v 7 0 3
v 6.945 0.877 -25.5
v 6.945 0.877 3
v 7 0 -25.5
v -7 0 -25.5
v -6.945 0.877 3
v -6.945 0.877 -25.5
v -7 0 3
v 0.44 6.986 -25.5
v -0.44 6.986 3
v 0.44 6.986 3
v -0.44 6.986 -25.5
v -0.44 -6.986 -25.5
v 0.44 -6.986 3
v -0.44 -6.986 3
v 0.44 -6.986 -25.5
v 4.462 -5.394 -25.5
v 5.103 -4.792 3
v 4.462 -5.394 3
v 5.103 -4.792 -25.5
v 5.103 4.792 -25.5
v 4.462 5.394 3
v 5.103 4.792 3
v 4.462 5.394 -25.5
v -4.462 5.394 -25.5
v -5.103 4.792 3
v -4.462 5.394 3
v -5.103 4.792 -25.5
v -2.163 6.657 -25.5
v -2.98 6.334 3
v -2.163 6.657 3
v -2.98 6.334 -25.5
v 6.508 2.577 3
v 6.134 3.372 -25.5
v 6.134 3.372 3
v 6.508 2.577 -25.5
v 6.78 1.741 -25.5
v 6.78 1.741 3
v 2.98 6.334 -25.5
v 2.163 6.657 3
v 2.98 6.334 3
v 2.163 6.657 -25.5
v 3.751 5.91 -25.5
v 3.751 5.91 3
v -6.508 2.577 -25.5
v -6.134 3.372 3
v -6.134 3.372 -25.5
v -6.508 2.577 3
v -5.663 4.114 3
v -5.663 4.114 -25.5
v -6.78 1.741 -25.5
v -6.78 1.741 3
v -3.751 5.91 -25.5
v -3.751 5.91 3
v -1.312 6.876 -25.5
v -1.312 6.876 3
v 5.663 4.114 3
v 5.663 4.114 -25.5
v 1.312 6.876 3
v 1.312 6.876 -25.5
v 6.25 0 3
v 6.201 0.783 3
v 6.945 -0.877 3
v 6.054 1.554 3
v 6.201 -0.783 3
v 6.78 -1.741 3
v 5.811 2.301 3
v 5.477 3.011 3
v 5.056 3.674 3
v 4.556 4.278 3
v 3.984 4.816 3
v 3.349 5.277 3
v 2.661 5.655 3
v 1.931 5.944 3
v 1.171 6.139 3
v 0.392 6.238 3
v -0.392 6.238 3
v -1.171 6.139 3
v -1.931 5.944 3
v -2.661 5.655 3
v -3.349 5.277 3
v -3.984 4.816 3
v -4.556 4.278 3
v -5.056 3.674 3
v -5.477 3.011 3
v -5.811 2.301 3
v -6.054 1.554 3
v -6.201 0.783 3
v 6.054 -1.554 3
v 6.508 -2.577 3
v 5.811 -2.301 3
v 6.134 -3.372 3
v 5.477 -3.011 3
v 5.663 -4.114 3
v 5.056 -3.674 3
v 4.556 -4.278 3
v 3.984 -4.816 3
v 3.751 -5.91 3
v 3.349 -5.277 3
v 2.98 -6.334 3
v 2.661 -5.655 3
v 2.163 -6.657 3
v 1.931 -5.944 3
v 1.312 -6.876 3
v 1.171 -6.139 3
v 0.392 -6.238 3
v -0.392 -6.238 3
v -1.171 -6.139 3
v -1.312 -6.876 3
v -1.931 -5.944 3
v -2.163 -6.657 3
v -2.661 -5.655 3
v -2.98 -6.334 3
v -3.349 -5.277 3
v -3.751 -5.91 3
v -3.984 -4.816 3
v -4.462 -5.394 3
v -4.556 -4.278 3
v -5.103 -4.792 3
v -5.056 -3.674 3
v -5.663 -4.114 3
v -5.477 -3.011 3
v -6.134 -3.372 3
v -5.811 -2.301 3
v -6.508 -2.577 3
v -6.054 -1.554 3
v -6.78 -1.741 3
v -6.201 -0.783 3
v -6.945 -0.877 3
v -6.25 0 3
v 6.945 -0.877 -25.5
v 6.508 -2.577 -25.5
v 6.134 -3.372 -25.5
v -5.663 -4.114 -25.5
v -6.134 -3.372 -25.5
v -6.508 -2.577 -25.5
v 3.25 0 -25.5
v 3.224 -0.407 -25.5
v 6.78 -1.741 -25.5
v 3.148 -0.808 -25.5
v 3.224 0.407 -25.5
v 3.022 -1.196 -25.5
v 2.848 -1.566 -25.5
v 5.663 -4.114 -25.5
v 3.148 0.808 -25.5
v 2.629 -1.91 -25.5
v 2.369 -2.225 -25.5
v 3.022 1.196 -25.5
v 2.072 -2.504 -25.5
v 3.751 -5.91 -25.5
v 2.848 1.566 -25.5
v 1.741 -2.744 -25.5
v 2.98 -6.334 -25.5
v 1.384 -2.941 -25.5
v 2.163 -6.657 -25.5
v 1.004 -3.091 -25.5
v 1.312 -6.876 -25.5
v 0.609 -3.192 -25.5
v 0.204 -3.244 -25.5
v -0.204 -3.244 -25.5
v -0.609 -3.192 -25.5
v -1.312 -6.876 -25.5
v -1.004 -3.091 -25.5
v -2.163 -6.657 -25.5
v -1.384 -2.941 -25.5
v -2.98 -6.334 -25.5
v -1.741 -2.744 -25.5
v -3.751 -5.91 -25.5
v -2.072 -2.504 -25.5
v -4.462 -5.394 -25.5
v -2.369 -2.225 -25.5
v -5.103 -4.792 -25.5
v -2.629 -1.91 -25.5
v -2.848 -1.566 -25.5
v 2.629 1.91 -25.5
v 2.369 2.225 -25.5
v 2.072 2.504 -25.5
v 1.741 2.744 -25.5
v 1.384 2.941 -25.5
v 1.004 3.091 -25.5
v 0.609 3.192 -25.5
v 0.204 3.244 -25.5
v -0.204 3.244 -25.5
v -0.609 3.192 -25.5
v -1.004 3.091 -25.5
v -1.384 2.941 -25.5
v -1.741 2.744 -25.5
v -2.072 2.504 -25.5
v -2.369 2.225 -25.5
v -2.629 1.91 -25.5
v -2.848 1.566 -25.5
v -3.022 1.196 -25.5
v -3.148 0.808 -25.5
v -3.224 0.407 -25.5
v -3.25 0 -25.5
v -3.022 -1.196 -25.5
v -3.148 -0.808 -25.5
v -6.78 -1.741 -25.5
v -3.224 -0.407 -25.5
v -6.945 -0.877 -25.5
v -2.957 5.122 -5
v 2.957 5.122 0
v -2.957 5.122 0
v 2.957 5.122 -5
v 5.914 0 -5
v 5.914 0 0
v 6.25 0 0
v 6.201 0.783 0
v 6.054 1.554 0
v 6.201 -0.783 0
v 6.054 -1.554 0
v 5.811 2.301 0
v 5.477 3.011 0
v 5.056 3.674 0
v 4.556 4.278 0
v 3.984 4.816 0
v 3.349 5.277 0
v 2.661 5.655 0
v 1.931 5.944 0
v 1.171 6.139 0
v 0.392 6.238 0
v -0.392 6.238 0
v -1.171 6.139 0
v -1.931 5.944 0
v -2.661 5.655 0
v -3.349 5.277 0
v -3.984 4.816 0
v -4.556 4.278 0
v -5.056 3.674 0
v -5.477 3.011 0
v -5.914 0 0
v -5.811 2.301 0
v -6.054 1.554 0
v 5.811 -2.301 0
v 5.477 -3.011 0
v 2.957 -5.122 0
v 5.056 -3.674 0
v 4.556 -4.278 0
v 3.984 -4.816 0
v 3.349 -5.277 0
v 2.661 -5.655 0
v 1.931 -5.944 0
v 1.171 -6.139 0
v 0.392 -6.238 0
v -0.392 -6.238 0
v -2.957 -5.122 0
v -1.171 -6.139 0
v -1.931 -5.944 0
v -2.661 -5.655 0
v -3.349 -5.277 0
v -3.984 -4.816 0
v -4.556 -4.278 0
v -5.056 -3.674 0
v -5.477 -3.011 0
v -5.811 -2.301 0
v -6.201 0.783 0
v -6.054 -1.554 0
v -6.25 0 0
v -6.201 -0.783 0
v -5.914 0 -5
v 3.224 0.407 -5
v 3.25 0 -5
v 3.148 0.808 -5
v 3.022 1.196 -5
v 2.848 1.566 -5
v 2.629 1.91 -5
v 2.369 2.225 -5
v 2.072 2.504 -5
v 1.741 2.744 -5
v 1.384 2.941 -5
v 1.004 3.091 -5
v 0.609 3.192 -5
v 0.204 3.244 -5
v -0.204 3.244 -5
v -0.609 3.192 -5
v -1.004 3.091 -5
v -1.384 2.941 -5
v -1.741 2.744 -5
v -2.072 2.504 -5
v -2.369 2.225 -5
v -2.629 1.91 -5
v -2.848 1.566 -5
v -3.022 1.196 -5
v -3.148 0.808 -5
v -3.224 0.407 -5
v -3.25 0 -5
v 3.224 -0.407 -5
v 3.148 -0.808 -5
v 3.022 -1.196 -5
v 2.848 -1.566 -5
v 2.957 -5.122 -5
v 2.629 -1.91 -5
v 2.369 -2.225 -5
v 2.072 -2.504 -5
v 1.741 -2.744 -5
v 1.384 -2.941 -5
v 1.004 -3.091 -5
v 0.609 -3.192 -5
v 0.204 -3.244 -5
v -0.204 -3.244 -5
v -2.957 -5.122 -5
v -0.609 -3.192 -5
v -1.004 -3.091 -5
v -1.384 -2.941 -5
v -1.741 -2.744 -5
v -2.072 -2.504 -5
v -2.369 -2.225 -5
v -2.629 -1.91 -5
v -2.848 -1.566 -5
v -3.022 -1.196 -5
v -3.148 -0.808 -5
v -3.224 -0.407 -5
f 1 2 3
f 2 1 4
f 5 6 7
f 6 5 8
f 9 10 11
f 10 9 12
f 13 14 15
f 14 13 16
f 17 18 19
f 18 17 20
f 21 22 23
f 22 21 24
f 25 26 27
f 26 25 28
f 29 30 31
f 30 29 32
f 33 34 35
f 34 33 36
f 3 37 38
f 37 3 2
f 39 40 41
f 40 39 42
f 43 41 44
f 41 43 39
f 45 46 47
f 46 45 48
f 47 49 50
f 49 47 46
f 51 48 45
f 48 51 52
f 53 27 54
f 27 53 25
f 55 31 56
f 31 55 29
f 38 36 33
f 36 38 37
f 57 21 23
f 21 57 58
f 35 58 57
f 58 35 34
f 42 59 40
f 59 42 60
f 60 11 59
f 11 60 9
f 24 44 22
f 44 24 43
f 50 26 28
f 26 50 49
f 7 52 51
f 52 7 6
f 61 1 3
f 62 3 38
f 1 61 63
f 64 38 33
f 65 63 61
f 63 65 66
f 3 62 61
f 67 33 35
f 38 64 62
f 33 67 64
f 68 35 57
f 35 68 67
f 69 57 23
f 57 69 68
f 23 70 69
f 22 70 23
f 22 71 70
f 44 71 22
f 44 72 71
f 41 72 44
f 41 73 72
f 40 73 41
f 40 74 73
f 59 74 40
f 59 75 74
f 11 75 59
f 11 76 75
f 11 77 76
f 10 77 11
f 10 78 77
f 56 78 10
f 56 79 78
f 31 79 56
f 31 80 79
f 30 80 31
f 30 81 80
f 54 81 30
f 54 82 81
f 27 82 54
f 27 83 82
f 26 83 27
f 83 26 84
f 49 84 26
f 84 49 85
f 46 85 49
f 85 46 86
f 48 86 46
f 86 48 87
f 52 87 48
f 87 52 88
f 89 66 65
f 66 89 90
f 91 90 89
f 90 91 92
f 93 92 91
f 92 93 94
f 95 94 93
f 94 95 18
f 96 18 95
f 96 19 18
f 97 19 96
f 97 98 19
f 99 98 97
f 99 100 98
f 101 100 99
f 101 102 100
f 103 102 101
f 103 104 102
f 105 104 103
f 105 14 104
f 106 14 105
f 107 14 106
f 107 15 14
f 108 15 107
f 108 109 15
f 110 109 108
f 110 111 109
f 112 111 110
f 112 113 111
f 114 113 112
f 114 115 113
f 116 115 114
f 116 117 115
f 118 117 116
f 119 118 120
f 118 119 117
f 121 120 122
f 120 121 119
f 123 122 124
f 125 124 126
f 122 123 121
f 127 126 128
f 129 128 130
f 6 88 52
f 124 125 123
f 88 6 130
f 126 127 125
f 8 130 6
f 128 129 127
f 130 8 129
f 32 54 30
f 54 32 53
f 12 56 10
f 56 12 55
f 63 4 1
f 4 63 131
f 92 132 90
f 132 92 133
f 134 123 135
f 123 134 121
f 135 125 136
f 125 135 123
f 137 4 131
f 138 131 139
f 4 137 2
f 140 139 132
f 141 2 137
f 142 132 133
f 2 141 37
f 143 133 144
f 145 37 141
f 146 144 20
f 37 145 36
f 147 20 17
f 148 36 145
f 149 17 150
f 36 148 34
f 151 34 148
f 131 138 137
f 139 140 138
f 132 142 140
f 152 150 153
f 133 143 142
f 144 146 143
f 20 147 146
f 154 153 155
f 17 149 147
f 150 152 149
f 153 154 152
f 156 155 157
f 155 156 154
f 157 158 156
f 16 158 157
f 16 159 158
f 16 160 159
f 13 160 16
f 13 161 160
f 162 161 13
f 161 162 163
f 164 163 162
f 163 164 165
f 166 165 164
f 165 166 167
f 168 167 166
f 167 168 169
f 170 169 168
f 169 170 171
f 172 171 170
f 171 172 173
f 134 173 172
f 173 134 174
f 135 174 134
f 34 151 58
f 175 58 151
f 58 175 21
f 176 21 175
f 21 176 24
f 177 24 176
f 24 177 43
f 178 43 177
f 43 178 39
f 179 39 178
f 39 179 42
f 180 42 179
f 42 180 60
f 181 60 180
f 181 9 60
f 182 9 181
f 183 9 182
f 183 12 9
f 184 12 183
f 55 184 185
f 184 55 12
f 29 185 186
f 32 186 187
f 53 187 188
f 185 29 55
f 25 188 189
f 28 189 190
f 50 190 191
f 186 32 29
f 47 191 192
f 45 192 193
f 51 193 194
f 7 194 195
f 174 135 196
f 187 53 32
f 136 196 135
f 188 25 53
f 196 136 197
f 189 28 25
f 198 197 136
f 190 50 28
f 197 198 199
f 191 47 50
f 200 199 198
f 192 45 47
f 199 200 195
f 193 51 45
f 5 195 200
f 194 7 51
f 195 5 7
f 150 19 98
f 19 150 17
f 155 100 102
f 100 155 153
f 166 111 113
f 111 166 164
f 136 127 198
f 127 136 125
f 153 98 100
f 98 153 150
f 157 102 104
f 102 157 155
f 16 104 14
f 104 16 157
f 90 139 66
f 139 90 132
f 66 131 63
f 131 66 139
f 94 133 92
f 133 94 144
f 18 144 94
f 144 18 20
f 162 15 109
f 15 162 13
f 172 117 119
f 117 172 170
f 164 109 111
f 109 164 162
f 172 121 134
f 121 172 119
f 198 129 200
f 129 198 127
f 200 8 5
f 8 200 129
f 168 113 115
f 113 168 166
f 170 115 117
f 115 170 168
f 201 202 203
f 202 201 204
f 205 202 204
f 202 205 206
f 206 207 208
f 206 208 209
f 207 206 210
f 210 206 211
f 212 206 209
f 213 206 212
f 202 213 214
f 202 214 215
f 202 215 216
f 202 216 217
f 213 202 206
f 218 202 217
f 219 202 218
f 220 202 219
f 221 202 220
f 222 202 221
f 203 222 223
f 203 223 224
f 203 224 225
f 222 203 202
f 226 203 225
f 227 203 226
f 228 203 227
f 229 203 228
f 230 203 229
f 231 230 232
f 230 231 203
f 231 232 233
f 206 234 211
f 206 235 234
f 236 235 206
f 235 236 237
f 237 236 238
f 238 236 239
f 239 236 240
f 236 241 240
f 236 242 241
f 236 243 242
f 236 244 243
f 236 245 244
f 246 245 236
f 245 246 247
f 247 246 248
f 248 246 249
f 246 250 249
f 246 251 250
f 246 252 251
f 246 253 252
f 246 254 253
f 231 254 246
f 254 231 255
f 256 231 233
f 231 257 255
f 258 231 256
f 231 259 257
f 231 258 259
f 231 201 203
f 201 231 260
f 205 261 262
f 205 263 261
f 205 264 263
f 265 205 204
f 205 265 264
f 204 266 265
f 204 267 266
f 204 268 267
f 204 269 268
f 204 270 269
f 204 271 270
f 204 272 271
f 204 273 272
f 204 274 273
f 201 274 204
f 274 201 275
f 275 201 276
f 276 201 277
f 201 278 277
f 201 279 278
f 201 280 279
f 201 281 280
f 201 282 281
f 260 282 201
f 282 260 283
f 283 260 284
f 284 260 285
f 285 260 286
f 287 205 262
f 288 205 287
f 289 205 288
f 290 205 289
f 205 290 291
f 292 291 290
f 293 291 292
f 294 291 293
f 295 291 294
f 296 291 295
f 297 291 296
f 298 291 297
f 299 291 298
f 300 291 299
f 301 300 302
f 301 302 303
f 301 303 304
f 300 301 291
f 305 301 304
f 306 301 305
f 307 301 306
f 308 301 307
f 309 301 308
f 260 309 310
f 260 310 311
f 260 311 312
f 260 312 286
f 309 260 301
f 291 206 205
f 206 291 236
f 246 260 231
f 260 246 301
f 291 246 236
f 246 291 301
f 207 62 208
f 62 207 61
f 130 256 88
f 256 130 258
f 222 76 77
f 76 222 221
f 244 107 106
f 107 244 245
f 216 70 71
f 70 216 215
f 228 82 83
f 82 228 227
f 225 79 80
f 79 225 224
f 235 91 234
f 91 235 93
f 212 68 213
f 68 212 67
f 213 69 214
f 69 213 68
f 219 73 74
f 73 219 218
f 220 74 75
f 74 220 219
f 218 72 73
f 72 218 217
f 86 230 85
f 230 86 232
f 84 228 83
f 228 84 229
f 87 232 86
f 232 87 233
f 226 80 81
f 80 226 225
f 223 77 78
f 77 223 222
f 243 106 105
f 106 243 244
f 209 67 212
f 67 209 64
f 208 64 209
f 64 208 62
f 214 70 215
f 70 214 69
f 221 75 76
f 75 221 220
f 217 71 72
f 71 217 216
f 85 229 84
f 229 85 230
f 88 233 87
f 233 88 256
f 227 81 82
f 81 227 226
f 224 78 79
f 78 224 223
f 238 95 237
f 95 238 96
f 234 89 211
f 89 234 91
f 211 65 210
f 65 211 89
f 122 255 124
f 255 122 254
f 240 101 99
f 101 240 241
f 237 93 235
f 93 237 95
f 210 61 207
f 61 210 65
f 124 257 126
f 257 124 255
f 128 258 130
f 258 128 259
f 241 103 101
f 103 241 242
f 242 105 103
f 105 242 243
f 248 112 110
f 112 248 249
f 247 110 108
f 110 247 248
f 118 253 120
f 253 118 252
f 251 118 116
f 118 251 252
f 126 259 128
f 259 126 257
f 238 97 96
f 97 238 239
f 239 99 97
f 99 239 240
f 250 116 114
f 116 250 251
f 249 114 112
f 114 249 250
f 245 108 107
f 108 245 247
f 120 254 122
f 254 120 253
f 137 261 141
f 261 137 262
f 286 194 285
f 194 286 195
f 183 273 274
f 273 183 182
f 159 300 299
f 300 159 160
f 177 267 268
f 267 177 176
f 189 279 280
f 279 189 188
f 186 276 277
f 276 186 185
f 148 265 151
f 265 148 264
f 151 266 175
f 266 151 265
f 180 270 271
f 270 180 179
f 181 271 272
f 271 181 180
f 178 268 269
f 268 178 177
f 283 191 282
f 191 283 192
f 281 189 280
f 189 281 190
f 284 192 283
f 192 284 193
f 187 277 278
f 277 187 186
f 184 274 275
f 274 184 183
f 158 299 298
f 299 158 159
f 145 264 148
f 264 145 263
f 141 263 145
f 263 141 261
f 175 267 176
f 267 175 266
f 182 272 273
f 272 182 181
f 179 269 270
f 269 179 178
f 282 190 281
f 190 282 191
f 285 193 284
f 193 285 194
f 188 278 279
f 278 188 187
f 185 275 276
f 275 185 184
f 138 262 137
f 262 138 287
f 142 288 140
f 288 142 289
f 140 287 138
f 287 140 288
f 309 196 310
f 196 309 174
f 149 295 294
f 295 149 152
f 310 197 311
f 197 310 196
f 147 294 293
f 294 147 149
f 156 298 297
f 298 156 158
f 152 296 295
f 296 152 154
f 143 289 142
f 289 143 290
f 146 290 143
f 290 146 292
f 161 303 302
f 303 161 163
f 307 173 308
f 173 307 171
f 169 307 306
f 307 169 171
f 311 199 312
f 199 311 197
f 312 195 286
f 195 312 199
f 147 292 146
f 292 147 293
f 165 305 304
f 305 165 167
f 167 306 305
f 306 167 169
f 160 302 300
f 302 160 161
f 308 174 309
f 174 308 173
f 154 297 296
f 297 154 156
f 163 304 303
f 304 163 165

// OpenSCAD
$fn = 50;

difference() {
	union() {
		translate(v = [0, 0, -25.5]) {
			cylinder(h = 28.5, r = 7.0);
		}
		#translate(v = [0, 0, -27.0]) {
			cylinder(h = 27, r = 2.875);
		}
	}
	union() {
		translate(v = [0, 0, 0]) {
			rotate(a = [0, 0, 0]) {
				difference() {
					union() {
						translate(v = [0, 0, -5]) {
							linear_extrude(height = 5) {
								polygon(points = [[5.914249999999999, 0.0], [2.957125, 5.1218907443321156], [-2.9571249999999982, 5.1218907443321156], [-5.914249999999999, 7.242867331857232e-16], [-2.9571250000000022, -5.121890744332115], [2.9571249999999956, -5.121890744332118]]);
							}
						}
					}
					union();
				}
			}
		}
		#cylinder(h = 3, r = 6.25);
		#translate(v = [0, 0, -100.0]) {
			cylinder(h = 200, r = 3.25);
		}
	}
}
